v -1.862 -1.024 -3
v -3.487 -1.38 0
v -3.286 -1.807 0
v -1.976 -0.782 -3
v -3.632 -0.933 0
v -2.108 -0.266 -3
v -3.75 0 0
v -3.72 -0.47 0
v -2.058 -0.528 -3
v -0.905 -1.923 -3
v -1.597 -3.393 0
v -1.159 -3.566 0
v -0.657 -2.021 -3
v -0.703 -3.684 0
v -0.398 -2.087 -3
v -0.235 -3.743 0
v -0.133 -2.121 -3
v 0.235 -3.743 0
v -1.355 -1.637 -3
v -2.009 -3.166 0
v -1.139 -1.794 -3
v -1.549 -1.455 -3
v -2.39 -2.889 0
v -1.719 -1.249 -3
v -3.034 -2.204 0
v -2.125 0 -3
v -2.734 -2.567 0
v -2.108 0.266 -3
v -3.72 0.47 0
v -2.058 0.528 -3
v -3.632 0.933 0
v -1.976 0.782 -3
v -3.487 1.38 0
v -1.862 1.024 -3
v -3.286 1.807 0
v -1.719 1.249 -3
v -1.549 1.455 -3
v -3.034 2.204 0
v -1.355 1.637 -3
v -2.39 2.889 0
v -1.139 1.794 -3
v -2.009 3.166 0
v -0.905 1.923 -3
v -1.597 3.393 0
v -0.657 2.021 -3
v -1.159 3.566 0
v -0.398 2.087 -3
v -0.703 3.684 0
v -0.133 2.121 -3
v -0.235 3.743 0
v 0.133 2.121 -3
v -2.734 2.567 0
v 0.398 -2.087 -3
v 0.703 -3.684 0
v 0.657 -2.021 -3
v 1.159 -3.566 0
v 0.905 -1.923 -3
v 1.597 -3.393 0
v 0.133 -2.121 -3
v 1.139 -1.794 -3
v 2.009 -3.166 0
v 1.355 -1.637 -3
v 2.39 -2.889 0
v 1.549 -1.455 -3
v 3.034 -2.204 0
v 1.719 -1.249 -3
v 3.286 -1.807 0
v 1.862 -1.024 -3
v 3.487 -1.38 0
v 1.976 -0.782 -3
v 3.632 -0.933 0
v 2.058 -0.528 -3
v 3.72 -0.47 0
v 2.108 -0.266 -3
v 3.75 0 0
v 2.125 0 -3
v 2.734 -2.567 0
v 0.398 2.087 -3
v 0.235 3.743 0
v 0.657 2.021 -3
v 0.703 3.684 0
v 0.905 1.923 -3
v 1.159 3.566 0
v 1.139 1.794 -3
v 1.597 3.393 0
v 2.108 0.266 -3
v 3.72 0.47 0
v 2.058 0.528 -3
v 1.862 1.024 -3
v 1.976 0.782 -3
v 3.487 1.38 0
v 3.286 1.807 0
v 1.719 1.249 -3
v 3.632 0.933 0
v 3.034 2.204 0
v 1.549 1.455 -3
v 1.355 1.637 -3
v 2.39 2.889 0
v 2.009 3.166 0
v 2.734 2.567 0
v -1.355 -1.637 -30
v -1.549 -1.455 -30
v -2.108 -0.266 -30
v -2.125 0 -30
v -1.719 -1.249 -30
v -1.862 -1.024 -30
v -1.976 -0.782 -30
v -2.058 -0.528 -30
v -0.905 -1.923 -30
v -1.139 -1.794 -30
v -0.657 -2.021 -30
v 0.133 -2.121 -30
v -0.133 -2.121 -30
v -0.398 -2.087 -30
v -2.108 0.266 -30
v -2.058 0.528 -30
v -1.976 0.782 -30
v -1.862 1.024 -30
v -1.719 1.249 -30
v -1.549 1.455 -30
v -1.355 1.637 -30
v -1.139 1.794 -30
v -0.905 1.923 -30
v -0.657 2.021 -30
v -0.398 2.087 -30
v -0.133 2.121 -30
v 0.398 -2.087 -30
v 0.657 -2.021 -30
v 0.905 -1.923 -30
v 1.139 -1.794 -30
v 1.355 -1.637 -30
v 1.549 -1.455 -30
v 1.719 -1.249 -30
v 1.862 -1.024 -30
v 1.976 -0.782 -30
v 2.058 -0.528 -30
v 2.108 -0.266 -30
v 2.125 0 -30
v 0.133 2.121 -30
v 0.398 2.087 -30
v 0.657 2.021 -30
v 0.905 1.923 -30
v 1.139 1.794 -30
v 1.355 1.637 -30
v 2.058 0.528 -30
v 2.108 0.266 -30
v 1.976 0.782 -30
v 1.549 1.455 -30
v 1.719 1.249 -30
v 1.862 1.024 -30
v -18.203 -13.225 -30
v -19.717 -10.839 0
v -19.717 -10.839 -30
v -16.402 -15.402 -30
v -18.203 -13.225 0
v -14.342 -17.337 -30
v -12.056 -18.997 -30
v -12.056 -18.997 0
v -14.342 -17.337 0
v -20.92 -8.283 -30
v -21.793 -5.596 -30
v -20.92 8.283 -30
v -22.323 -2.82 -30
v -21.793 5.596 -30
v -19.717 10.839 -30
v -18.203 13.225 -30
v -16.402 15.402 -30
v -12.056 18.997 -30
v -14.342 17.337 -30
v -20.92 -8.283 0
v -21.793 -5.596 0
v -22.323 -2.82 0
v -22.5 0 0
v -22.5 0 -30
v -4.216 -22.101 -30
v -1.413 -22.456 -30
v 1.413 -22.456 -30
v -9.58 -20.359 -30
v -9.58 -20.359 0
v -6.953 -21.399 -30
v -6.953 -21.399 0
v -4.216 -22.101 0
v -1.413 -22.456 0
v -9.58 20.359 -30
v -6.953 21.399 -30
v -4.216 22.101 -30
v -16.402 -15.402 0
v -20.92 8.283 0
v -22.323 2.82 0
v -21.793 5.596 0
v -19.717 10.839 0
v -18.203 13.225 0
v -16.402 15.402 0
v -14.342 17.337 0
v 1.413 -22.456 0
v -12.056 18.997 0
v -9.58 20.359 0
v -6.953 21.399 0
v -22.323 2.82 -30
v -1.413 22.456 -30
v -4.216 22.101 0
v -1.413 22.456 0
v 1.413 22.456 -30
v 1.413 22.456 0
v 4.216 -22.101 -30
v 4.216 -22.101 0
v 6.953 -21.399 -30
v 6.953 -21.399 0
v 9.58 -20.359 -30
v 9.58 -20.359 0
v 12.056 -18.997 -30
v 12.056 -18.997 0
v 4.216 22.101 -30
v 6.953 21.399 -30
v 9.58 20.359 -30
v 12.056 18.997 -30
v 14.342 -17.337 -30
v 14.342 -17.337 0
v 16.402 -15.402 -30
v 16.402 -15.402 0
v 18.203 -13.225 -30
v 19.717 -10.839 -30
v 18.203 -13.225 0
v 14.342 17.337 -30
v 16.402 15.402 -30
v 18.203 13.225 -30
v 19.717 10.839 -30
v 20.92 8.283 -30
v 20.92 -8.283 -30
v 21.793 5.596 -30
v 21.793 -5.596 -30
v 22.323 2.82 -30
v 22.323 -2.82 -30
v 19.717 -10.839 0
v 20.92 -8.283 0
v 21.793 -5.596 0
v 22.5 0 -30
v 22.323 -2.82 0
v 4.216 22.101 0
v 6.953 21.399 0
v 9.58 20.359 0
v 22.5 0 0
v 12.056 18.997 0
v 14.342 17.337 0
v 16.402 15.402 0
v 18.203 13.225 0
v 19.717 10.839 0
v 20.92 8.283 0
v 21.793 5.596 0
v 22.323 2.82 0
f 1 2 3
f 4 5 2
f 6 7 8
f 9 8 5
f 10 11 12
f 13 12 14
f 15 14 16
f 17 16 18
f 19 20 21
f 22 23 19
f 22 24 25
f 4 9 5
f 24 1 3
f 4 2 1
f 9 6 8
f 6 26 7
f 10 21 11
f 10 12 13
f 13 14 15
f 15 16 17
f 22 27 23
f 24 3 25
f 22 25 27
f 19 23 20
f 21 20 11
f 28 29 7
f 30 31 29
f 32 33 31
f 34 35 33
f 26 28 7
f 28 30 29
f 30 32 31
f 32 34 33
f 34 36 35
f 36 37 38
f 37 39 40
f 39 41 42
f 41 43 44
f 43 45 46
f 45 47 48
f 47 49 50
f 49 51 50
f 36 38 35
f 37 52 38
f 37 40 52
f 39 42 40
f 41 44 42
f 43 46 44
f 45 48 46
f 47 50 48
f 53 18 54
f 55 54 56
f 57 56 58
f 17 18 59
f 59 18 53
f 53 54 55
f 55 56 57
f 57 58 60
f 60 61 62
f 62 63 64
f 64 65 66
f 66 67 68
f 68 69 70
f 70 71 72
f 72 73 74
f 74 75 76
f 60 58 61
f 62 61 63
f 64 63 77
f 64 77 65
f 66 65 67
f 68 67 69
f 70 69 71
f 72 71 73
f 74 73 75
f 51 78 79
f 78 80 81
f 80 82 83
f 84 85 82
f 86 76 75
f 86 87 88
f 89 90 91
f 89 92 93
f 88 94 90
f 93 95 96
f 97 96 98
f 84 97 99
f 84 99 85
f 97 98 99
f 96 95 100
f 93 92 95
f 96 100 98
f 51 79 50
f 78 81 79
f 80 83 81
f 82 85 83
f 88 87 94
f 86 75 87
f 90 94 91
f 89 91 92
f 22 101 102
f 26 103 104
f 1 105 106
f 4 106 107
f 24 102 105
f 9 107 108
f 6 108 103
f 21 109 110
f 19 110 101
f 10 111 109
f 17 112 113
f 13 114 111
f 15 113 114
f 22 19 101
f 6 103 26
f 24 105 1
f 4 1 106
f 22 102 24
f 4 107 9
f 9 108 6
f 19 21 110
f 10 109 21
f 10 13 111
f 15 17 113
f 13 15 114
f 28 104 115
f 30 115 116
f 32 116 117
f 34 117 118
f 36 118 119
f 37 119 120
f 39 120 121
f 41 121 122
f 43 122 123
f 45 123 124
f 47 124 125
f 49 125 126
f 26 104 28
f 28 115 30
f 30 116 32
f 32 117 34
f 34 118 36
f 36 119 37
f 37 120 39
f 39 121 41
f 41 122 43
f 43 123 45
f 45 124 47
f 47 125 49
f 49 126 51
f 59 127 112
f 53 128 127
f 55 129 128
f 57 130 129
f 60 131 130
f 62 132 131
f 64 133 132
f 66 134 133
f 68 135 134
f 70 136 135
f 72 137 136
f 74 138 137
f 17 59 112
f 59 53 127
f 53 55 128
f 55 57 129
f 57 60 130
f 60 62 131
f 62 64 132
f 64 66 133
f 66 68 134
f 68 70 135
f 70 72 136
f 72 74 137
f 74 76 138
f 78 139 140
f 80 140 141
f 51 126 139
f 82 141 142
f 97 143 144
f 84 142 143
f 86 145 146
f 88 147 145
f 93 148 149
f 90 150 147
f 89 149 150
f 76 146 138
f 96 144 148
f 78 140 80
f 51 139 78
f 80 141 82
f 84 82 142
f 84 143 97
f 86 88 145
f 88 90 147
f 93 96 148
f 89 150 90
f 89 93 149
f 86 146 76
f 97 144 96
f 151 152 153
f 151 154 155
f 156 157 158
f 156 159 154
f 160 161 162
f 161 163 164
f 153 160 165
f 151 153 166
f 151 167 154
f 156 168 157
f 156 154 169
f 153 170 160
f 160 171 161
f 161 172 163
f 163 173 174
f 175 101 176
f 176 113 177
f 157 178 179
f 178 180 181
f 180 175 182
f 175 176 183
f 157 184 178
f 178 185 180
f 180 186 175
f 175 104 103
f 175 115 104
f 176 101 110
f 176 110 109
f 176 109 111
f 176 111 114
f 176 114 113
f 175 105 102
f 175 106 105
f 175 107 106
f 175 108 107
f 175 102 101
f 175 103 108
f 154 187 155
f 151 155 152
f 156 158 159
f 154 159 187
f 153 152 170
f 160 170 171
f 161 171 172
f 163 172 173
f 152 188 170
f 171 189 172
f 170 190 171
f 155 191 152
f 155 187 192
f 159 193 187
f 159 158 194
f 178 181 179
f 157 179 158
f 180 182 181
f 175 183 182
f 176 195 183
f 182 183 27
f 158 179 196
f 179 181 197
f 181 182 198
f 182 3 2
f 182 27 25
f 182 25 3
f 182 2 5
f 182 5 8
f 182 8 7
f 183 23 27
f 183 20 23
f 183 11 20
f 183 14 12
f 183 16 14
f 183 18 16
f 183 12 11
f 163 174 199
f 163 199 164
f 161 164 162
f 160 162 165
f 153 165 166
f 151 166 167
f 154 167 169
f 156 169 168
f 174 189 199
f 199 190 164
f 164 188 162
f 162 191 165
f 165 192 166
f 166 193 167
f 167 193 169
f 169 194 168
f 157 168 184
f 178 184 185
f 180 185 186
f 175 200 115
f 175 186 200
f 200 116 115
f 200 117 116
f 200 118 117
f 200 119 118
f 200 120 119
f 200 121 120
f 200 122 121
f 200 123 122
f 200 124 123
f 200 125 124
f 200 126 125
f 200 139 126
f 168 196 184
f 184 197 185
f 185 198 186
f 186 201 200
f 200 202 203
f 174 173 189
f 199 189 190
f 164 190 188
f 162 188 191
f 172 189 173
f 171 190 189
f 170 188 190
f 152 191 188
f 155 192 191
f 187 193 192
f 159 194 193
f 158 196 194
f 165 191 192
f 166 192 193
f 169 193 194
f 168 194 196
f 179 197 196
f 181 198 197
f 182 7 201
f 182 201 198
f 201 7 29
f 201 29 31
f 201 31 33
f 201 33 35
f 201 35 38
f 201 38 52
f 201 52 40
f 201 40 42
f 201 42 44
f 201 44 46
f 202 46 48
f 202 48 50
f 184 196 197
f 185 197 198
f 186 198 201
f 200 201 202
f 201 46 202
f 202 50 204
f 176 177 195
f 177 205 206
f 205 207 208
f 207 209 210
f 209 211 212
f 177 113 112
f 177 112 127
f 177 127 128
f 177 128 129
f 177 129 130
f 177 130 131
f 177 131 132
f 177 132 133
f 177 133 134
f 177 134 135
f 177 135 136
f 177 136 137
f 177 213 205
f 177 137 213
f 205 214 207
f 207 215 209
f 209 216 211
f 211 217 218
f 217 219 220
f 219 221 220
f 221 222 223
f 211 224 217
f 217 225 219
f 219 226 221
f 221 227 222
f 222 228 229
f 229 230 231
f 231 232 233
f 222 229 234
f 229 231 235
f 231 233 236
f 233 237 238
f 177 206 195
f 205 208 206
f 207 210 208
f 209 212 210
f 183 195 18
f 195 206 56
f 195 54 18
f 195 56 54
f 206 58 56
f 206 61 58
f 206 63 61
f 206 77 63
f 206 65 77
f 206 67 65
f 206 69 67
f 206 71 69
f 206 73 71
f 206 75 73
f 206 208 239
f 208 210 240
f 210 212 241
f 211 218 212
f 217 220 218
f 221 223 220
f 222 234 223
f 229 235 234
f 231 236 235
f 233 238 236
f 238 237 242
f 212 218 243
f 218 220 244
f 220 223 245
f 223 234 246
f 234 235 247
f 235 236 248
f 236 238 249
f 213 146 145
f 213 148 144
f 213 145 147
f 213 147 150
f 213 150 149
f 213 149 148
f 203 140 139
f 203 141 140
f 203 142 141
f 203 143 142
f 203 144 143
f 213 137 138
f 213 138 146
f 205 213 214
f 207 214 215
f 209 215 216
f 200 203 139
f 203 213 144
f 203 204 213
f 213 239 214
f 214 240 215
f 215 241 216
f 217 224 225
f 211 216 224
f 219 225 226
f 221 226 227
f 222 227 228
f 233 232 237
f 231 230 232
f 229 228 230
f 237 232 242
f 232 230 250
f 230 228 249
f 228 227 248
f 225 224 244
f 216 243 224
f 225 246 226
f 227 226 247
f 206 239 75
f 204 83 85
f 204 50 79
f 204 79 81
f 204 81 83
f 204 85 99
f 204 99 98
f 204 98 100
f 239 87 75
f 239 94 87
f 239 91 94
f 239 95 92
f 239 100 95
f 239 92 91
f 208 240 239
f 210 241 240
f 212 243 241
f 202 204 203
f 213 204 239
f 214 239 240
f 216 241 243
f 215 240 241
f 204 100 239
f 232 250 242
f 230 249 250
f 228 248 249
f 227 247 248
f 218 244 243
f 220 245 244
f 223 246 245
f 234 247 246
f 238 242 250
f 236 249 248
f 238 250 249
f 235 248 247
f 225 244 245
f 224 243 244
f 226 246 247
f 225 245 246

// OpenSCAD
$fn = 50;

difference() {
	union() {
		translate(v = [0, 0, -30.0]) {
			cylinder(h = 30, r = 22.5);
		}
	}
	union() {
		translate(v = [0, 0, 0]) {
			rotate(a = [0, 0, 0]) {
				difference() {
					union() {
						translate(v = [0, 0, -33.0]) {
							cylinder(h = 33, r = 2.0);
						}
						translate(v = [0, 0, -3]) {
							cylinder(h = 3, r1 = 2.125, r2 = 3.75);
						}
						translate(v = [0, 0, -33.0]) {
							cylinder(h = 33, r = 2.125);
						}
						translate(v = [0, 0, -33.0]) {
							cylinder(h = 33, r = 2.0);
						}
					}
					union();
				}
			}
		}
	}
}
